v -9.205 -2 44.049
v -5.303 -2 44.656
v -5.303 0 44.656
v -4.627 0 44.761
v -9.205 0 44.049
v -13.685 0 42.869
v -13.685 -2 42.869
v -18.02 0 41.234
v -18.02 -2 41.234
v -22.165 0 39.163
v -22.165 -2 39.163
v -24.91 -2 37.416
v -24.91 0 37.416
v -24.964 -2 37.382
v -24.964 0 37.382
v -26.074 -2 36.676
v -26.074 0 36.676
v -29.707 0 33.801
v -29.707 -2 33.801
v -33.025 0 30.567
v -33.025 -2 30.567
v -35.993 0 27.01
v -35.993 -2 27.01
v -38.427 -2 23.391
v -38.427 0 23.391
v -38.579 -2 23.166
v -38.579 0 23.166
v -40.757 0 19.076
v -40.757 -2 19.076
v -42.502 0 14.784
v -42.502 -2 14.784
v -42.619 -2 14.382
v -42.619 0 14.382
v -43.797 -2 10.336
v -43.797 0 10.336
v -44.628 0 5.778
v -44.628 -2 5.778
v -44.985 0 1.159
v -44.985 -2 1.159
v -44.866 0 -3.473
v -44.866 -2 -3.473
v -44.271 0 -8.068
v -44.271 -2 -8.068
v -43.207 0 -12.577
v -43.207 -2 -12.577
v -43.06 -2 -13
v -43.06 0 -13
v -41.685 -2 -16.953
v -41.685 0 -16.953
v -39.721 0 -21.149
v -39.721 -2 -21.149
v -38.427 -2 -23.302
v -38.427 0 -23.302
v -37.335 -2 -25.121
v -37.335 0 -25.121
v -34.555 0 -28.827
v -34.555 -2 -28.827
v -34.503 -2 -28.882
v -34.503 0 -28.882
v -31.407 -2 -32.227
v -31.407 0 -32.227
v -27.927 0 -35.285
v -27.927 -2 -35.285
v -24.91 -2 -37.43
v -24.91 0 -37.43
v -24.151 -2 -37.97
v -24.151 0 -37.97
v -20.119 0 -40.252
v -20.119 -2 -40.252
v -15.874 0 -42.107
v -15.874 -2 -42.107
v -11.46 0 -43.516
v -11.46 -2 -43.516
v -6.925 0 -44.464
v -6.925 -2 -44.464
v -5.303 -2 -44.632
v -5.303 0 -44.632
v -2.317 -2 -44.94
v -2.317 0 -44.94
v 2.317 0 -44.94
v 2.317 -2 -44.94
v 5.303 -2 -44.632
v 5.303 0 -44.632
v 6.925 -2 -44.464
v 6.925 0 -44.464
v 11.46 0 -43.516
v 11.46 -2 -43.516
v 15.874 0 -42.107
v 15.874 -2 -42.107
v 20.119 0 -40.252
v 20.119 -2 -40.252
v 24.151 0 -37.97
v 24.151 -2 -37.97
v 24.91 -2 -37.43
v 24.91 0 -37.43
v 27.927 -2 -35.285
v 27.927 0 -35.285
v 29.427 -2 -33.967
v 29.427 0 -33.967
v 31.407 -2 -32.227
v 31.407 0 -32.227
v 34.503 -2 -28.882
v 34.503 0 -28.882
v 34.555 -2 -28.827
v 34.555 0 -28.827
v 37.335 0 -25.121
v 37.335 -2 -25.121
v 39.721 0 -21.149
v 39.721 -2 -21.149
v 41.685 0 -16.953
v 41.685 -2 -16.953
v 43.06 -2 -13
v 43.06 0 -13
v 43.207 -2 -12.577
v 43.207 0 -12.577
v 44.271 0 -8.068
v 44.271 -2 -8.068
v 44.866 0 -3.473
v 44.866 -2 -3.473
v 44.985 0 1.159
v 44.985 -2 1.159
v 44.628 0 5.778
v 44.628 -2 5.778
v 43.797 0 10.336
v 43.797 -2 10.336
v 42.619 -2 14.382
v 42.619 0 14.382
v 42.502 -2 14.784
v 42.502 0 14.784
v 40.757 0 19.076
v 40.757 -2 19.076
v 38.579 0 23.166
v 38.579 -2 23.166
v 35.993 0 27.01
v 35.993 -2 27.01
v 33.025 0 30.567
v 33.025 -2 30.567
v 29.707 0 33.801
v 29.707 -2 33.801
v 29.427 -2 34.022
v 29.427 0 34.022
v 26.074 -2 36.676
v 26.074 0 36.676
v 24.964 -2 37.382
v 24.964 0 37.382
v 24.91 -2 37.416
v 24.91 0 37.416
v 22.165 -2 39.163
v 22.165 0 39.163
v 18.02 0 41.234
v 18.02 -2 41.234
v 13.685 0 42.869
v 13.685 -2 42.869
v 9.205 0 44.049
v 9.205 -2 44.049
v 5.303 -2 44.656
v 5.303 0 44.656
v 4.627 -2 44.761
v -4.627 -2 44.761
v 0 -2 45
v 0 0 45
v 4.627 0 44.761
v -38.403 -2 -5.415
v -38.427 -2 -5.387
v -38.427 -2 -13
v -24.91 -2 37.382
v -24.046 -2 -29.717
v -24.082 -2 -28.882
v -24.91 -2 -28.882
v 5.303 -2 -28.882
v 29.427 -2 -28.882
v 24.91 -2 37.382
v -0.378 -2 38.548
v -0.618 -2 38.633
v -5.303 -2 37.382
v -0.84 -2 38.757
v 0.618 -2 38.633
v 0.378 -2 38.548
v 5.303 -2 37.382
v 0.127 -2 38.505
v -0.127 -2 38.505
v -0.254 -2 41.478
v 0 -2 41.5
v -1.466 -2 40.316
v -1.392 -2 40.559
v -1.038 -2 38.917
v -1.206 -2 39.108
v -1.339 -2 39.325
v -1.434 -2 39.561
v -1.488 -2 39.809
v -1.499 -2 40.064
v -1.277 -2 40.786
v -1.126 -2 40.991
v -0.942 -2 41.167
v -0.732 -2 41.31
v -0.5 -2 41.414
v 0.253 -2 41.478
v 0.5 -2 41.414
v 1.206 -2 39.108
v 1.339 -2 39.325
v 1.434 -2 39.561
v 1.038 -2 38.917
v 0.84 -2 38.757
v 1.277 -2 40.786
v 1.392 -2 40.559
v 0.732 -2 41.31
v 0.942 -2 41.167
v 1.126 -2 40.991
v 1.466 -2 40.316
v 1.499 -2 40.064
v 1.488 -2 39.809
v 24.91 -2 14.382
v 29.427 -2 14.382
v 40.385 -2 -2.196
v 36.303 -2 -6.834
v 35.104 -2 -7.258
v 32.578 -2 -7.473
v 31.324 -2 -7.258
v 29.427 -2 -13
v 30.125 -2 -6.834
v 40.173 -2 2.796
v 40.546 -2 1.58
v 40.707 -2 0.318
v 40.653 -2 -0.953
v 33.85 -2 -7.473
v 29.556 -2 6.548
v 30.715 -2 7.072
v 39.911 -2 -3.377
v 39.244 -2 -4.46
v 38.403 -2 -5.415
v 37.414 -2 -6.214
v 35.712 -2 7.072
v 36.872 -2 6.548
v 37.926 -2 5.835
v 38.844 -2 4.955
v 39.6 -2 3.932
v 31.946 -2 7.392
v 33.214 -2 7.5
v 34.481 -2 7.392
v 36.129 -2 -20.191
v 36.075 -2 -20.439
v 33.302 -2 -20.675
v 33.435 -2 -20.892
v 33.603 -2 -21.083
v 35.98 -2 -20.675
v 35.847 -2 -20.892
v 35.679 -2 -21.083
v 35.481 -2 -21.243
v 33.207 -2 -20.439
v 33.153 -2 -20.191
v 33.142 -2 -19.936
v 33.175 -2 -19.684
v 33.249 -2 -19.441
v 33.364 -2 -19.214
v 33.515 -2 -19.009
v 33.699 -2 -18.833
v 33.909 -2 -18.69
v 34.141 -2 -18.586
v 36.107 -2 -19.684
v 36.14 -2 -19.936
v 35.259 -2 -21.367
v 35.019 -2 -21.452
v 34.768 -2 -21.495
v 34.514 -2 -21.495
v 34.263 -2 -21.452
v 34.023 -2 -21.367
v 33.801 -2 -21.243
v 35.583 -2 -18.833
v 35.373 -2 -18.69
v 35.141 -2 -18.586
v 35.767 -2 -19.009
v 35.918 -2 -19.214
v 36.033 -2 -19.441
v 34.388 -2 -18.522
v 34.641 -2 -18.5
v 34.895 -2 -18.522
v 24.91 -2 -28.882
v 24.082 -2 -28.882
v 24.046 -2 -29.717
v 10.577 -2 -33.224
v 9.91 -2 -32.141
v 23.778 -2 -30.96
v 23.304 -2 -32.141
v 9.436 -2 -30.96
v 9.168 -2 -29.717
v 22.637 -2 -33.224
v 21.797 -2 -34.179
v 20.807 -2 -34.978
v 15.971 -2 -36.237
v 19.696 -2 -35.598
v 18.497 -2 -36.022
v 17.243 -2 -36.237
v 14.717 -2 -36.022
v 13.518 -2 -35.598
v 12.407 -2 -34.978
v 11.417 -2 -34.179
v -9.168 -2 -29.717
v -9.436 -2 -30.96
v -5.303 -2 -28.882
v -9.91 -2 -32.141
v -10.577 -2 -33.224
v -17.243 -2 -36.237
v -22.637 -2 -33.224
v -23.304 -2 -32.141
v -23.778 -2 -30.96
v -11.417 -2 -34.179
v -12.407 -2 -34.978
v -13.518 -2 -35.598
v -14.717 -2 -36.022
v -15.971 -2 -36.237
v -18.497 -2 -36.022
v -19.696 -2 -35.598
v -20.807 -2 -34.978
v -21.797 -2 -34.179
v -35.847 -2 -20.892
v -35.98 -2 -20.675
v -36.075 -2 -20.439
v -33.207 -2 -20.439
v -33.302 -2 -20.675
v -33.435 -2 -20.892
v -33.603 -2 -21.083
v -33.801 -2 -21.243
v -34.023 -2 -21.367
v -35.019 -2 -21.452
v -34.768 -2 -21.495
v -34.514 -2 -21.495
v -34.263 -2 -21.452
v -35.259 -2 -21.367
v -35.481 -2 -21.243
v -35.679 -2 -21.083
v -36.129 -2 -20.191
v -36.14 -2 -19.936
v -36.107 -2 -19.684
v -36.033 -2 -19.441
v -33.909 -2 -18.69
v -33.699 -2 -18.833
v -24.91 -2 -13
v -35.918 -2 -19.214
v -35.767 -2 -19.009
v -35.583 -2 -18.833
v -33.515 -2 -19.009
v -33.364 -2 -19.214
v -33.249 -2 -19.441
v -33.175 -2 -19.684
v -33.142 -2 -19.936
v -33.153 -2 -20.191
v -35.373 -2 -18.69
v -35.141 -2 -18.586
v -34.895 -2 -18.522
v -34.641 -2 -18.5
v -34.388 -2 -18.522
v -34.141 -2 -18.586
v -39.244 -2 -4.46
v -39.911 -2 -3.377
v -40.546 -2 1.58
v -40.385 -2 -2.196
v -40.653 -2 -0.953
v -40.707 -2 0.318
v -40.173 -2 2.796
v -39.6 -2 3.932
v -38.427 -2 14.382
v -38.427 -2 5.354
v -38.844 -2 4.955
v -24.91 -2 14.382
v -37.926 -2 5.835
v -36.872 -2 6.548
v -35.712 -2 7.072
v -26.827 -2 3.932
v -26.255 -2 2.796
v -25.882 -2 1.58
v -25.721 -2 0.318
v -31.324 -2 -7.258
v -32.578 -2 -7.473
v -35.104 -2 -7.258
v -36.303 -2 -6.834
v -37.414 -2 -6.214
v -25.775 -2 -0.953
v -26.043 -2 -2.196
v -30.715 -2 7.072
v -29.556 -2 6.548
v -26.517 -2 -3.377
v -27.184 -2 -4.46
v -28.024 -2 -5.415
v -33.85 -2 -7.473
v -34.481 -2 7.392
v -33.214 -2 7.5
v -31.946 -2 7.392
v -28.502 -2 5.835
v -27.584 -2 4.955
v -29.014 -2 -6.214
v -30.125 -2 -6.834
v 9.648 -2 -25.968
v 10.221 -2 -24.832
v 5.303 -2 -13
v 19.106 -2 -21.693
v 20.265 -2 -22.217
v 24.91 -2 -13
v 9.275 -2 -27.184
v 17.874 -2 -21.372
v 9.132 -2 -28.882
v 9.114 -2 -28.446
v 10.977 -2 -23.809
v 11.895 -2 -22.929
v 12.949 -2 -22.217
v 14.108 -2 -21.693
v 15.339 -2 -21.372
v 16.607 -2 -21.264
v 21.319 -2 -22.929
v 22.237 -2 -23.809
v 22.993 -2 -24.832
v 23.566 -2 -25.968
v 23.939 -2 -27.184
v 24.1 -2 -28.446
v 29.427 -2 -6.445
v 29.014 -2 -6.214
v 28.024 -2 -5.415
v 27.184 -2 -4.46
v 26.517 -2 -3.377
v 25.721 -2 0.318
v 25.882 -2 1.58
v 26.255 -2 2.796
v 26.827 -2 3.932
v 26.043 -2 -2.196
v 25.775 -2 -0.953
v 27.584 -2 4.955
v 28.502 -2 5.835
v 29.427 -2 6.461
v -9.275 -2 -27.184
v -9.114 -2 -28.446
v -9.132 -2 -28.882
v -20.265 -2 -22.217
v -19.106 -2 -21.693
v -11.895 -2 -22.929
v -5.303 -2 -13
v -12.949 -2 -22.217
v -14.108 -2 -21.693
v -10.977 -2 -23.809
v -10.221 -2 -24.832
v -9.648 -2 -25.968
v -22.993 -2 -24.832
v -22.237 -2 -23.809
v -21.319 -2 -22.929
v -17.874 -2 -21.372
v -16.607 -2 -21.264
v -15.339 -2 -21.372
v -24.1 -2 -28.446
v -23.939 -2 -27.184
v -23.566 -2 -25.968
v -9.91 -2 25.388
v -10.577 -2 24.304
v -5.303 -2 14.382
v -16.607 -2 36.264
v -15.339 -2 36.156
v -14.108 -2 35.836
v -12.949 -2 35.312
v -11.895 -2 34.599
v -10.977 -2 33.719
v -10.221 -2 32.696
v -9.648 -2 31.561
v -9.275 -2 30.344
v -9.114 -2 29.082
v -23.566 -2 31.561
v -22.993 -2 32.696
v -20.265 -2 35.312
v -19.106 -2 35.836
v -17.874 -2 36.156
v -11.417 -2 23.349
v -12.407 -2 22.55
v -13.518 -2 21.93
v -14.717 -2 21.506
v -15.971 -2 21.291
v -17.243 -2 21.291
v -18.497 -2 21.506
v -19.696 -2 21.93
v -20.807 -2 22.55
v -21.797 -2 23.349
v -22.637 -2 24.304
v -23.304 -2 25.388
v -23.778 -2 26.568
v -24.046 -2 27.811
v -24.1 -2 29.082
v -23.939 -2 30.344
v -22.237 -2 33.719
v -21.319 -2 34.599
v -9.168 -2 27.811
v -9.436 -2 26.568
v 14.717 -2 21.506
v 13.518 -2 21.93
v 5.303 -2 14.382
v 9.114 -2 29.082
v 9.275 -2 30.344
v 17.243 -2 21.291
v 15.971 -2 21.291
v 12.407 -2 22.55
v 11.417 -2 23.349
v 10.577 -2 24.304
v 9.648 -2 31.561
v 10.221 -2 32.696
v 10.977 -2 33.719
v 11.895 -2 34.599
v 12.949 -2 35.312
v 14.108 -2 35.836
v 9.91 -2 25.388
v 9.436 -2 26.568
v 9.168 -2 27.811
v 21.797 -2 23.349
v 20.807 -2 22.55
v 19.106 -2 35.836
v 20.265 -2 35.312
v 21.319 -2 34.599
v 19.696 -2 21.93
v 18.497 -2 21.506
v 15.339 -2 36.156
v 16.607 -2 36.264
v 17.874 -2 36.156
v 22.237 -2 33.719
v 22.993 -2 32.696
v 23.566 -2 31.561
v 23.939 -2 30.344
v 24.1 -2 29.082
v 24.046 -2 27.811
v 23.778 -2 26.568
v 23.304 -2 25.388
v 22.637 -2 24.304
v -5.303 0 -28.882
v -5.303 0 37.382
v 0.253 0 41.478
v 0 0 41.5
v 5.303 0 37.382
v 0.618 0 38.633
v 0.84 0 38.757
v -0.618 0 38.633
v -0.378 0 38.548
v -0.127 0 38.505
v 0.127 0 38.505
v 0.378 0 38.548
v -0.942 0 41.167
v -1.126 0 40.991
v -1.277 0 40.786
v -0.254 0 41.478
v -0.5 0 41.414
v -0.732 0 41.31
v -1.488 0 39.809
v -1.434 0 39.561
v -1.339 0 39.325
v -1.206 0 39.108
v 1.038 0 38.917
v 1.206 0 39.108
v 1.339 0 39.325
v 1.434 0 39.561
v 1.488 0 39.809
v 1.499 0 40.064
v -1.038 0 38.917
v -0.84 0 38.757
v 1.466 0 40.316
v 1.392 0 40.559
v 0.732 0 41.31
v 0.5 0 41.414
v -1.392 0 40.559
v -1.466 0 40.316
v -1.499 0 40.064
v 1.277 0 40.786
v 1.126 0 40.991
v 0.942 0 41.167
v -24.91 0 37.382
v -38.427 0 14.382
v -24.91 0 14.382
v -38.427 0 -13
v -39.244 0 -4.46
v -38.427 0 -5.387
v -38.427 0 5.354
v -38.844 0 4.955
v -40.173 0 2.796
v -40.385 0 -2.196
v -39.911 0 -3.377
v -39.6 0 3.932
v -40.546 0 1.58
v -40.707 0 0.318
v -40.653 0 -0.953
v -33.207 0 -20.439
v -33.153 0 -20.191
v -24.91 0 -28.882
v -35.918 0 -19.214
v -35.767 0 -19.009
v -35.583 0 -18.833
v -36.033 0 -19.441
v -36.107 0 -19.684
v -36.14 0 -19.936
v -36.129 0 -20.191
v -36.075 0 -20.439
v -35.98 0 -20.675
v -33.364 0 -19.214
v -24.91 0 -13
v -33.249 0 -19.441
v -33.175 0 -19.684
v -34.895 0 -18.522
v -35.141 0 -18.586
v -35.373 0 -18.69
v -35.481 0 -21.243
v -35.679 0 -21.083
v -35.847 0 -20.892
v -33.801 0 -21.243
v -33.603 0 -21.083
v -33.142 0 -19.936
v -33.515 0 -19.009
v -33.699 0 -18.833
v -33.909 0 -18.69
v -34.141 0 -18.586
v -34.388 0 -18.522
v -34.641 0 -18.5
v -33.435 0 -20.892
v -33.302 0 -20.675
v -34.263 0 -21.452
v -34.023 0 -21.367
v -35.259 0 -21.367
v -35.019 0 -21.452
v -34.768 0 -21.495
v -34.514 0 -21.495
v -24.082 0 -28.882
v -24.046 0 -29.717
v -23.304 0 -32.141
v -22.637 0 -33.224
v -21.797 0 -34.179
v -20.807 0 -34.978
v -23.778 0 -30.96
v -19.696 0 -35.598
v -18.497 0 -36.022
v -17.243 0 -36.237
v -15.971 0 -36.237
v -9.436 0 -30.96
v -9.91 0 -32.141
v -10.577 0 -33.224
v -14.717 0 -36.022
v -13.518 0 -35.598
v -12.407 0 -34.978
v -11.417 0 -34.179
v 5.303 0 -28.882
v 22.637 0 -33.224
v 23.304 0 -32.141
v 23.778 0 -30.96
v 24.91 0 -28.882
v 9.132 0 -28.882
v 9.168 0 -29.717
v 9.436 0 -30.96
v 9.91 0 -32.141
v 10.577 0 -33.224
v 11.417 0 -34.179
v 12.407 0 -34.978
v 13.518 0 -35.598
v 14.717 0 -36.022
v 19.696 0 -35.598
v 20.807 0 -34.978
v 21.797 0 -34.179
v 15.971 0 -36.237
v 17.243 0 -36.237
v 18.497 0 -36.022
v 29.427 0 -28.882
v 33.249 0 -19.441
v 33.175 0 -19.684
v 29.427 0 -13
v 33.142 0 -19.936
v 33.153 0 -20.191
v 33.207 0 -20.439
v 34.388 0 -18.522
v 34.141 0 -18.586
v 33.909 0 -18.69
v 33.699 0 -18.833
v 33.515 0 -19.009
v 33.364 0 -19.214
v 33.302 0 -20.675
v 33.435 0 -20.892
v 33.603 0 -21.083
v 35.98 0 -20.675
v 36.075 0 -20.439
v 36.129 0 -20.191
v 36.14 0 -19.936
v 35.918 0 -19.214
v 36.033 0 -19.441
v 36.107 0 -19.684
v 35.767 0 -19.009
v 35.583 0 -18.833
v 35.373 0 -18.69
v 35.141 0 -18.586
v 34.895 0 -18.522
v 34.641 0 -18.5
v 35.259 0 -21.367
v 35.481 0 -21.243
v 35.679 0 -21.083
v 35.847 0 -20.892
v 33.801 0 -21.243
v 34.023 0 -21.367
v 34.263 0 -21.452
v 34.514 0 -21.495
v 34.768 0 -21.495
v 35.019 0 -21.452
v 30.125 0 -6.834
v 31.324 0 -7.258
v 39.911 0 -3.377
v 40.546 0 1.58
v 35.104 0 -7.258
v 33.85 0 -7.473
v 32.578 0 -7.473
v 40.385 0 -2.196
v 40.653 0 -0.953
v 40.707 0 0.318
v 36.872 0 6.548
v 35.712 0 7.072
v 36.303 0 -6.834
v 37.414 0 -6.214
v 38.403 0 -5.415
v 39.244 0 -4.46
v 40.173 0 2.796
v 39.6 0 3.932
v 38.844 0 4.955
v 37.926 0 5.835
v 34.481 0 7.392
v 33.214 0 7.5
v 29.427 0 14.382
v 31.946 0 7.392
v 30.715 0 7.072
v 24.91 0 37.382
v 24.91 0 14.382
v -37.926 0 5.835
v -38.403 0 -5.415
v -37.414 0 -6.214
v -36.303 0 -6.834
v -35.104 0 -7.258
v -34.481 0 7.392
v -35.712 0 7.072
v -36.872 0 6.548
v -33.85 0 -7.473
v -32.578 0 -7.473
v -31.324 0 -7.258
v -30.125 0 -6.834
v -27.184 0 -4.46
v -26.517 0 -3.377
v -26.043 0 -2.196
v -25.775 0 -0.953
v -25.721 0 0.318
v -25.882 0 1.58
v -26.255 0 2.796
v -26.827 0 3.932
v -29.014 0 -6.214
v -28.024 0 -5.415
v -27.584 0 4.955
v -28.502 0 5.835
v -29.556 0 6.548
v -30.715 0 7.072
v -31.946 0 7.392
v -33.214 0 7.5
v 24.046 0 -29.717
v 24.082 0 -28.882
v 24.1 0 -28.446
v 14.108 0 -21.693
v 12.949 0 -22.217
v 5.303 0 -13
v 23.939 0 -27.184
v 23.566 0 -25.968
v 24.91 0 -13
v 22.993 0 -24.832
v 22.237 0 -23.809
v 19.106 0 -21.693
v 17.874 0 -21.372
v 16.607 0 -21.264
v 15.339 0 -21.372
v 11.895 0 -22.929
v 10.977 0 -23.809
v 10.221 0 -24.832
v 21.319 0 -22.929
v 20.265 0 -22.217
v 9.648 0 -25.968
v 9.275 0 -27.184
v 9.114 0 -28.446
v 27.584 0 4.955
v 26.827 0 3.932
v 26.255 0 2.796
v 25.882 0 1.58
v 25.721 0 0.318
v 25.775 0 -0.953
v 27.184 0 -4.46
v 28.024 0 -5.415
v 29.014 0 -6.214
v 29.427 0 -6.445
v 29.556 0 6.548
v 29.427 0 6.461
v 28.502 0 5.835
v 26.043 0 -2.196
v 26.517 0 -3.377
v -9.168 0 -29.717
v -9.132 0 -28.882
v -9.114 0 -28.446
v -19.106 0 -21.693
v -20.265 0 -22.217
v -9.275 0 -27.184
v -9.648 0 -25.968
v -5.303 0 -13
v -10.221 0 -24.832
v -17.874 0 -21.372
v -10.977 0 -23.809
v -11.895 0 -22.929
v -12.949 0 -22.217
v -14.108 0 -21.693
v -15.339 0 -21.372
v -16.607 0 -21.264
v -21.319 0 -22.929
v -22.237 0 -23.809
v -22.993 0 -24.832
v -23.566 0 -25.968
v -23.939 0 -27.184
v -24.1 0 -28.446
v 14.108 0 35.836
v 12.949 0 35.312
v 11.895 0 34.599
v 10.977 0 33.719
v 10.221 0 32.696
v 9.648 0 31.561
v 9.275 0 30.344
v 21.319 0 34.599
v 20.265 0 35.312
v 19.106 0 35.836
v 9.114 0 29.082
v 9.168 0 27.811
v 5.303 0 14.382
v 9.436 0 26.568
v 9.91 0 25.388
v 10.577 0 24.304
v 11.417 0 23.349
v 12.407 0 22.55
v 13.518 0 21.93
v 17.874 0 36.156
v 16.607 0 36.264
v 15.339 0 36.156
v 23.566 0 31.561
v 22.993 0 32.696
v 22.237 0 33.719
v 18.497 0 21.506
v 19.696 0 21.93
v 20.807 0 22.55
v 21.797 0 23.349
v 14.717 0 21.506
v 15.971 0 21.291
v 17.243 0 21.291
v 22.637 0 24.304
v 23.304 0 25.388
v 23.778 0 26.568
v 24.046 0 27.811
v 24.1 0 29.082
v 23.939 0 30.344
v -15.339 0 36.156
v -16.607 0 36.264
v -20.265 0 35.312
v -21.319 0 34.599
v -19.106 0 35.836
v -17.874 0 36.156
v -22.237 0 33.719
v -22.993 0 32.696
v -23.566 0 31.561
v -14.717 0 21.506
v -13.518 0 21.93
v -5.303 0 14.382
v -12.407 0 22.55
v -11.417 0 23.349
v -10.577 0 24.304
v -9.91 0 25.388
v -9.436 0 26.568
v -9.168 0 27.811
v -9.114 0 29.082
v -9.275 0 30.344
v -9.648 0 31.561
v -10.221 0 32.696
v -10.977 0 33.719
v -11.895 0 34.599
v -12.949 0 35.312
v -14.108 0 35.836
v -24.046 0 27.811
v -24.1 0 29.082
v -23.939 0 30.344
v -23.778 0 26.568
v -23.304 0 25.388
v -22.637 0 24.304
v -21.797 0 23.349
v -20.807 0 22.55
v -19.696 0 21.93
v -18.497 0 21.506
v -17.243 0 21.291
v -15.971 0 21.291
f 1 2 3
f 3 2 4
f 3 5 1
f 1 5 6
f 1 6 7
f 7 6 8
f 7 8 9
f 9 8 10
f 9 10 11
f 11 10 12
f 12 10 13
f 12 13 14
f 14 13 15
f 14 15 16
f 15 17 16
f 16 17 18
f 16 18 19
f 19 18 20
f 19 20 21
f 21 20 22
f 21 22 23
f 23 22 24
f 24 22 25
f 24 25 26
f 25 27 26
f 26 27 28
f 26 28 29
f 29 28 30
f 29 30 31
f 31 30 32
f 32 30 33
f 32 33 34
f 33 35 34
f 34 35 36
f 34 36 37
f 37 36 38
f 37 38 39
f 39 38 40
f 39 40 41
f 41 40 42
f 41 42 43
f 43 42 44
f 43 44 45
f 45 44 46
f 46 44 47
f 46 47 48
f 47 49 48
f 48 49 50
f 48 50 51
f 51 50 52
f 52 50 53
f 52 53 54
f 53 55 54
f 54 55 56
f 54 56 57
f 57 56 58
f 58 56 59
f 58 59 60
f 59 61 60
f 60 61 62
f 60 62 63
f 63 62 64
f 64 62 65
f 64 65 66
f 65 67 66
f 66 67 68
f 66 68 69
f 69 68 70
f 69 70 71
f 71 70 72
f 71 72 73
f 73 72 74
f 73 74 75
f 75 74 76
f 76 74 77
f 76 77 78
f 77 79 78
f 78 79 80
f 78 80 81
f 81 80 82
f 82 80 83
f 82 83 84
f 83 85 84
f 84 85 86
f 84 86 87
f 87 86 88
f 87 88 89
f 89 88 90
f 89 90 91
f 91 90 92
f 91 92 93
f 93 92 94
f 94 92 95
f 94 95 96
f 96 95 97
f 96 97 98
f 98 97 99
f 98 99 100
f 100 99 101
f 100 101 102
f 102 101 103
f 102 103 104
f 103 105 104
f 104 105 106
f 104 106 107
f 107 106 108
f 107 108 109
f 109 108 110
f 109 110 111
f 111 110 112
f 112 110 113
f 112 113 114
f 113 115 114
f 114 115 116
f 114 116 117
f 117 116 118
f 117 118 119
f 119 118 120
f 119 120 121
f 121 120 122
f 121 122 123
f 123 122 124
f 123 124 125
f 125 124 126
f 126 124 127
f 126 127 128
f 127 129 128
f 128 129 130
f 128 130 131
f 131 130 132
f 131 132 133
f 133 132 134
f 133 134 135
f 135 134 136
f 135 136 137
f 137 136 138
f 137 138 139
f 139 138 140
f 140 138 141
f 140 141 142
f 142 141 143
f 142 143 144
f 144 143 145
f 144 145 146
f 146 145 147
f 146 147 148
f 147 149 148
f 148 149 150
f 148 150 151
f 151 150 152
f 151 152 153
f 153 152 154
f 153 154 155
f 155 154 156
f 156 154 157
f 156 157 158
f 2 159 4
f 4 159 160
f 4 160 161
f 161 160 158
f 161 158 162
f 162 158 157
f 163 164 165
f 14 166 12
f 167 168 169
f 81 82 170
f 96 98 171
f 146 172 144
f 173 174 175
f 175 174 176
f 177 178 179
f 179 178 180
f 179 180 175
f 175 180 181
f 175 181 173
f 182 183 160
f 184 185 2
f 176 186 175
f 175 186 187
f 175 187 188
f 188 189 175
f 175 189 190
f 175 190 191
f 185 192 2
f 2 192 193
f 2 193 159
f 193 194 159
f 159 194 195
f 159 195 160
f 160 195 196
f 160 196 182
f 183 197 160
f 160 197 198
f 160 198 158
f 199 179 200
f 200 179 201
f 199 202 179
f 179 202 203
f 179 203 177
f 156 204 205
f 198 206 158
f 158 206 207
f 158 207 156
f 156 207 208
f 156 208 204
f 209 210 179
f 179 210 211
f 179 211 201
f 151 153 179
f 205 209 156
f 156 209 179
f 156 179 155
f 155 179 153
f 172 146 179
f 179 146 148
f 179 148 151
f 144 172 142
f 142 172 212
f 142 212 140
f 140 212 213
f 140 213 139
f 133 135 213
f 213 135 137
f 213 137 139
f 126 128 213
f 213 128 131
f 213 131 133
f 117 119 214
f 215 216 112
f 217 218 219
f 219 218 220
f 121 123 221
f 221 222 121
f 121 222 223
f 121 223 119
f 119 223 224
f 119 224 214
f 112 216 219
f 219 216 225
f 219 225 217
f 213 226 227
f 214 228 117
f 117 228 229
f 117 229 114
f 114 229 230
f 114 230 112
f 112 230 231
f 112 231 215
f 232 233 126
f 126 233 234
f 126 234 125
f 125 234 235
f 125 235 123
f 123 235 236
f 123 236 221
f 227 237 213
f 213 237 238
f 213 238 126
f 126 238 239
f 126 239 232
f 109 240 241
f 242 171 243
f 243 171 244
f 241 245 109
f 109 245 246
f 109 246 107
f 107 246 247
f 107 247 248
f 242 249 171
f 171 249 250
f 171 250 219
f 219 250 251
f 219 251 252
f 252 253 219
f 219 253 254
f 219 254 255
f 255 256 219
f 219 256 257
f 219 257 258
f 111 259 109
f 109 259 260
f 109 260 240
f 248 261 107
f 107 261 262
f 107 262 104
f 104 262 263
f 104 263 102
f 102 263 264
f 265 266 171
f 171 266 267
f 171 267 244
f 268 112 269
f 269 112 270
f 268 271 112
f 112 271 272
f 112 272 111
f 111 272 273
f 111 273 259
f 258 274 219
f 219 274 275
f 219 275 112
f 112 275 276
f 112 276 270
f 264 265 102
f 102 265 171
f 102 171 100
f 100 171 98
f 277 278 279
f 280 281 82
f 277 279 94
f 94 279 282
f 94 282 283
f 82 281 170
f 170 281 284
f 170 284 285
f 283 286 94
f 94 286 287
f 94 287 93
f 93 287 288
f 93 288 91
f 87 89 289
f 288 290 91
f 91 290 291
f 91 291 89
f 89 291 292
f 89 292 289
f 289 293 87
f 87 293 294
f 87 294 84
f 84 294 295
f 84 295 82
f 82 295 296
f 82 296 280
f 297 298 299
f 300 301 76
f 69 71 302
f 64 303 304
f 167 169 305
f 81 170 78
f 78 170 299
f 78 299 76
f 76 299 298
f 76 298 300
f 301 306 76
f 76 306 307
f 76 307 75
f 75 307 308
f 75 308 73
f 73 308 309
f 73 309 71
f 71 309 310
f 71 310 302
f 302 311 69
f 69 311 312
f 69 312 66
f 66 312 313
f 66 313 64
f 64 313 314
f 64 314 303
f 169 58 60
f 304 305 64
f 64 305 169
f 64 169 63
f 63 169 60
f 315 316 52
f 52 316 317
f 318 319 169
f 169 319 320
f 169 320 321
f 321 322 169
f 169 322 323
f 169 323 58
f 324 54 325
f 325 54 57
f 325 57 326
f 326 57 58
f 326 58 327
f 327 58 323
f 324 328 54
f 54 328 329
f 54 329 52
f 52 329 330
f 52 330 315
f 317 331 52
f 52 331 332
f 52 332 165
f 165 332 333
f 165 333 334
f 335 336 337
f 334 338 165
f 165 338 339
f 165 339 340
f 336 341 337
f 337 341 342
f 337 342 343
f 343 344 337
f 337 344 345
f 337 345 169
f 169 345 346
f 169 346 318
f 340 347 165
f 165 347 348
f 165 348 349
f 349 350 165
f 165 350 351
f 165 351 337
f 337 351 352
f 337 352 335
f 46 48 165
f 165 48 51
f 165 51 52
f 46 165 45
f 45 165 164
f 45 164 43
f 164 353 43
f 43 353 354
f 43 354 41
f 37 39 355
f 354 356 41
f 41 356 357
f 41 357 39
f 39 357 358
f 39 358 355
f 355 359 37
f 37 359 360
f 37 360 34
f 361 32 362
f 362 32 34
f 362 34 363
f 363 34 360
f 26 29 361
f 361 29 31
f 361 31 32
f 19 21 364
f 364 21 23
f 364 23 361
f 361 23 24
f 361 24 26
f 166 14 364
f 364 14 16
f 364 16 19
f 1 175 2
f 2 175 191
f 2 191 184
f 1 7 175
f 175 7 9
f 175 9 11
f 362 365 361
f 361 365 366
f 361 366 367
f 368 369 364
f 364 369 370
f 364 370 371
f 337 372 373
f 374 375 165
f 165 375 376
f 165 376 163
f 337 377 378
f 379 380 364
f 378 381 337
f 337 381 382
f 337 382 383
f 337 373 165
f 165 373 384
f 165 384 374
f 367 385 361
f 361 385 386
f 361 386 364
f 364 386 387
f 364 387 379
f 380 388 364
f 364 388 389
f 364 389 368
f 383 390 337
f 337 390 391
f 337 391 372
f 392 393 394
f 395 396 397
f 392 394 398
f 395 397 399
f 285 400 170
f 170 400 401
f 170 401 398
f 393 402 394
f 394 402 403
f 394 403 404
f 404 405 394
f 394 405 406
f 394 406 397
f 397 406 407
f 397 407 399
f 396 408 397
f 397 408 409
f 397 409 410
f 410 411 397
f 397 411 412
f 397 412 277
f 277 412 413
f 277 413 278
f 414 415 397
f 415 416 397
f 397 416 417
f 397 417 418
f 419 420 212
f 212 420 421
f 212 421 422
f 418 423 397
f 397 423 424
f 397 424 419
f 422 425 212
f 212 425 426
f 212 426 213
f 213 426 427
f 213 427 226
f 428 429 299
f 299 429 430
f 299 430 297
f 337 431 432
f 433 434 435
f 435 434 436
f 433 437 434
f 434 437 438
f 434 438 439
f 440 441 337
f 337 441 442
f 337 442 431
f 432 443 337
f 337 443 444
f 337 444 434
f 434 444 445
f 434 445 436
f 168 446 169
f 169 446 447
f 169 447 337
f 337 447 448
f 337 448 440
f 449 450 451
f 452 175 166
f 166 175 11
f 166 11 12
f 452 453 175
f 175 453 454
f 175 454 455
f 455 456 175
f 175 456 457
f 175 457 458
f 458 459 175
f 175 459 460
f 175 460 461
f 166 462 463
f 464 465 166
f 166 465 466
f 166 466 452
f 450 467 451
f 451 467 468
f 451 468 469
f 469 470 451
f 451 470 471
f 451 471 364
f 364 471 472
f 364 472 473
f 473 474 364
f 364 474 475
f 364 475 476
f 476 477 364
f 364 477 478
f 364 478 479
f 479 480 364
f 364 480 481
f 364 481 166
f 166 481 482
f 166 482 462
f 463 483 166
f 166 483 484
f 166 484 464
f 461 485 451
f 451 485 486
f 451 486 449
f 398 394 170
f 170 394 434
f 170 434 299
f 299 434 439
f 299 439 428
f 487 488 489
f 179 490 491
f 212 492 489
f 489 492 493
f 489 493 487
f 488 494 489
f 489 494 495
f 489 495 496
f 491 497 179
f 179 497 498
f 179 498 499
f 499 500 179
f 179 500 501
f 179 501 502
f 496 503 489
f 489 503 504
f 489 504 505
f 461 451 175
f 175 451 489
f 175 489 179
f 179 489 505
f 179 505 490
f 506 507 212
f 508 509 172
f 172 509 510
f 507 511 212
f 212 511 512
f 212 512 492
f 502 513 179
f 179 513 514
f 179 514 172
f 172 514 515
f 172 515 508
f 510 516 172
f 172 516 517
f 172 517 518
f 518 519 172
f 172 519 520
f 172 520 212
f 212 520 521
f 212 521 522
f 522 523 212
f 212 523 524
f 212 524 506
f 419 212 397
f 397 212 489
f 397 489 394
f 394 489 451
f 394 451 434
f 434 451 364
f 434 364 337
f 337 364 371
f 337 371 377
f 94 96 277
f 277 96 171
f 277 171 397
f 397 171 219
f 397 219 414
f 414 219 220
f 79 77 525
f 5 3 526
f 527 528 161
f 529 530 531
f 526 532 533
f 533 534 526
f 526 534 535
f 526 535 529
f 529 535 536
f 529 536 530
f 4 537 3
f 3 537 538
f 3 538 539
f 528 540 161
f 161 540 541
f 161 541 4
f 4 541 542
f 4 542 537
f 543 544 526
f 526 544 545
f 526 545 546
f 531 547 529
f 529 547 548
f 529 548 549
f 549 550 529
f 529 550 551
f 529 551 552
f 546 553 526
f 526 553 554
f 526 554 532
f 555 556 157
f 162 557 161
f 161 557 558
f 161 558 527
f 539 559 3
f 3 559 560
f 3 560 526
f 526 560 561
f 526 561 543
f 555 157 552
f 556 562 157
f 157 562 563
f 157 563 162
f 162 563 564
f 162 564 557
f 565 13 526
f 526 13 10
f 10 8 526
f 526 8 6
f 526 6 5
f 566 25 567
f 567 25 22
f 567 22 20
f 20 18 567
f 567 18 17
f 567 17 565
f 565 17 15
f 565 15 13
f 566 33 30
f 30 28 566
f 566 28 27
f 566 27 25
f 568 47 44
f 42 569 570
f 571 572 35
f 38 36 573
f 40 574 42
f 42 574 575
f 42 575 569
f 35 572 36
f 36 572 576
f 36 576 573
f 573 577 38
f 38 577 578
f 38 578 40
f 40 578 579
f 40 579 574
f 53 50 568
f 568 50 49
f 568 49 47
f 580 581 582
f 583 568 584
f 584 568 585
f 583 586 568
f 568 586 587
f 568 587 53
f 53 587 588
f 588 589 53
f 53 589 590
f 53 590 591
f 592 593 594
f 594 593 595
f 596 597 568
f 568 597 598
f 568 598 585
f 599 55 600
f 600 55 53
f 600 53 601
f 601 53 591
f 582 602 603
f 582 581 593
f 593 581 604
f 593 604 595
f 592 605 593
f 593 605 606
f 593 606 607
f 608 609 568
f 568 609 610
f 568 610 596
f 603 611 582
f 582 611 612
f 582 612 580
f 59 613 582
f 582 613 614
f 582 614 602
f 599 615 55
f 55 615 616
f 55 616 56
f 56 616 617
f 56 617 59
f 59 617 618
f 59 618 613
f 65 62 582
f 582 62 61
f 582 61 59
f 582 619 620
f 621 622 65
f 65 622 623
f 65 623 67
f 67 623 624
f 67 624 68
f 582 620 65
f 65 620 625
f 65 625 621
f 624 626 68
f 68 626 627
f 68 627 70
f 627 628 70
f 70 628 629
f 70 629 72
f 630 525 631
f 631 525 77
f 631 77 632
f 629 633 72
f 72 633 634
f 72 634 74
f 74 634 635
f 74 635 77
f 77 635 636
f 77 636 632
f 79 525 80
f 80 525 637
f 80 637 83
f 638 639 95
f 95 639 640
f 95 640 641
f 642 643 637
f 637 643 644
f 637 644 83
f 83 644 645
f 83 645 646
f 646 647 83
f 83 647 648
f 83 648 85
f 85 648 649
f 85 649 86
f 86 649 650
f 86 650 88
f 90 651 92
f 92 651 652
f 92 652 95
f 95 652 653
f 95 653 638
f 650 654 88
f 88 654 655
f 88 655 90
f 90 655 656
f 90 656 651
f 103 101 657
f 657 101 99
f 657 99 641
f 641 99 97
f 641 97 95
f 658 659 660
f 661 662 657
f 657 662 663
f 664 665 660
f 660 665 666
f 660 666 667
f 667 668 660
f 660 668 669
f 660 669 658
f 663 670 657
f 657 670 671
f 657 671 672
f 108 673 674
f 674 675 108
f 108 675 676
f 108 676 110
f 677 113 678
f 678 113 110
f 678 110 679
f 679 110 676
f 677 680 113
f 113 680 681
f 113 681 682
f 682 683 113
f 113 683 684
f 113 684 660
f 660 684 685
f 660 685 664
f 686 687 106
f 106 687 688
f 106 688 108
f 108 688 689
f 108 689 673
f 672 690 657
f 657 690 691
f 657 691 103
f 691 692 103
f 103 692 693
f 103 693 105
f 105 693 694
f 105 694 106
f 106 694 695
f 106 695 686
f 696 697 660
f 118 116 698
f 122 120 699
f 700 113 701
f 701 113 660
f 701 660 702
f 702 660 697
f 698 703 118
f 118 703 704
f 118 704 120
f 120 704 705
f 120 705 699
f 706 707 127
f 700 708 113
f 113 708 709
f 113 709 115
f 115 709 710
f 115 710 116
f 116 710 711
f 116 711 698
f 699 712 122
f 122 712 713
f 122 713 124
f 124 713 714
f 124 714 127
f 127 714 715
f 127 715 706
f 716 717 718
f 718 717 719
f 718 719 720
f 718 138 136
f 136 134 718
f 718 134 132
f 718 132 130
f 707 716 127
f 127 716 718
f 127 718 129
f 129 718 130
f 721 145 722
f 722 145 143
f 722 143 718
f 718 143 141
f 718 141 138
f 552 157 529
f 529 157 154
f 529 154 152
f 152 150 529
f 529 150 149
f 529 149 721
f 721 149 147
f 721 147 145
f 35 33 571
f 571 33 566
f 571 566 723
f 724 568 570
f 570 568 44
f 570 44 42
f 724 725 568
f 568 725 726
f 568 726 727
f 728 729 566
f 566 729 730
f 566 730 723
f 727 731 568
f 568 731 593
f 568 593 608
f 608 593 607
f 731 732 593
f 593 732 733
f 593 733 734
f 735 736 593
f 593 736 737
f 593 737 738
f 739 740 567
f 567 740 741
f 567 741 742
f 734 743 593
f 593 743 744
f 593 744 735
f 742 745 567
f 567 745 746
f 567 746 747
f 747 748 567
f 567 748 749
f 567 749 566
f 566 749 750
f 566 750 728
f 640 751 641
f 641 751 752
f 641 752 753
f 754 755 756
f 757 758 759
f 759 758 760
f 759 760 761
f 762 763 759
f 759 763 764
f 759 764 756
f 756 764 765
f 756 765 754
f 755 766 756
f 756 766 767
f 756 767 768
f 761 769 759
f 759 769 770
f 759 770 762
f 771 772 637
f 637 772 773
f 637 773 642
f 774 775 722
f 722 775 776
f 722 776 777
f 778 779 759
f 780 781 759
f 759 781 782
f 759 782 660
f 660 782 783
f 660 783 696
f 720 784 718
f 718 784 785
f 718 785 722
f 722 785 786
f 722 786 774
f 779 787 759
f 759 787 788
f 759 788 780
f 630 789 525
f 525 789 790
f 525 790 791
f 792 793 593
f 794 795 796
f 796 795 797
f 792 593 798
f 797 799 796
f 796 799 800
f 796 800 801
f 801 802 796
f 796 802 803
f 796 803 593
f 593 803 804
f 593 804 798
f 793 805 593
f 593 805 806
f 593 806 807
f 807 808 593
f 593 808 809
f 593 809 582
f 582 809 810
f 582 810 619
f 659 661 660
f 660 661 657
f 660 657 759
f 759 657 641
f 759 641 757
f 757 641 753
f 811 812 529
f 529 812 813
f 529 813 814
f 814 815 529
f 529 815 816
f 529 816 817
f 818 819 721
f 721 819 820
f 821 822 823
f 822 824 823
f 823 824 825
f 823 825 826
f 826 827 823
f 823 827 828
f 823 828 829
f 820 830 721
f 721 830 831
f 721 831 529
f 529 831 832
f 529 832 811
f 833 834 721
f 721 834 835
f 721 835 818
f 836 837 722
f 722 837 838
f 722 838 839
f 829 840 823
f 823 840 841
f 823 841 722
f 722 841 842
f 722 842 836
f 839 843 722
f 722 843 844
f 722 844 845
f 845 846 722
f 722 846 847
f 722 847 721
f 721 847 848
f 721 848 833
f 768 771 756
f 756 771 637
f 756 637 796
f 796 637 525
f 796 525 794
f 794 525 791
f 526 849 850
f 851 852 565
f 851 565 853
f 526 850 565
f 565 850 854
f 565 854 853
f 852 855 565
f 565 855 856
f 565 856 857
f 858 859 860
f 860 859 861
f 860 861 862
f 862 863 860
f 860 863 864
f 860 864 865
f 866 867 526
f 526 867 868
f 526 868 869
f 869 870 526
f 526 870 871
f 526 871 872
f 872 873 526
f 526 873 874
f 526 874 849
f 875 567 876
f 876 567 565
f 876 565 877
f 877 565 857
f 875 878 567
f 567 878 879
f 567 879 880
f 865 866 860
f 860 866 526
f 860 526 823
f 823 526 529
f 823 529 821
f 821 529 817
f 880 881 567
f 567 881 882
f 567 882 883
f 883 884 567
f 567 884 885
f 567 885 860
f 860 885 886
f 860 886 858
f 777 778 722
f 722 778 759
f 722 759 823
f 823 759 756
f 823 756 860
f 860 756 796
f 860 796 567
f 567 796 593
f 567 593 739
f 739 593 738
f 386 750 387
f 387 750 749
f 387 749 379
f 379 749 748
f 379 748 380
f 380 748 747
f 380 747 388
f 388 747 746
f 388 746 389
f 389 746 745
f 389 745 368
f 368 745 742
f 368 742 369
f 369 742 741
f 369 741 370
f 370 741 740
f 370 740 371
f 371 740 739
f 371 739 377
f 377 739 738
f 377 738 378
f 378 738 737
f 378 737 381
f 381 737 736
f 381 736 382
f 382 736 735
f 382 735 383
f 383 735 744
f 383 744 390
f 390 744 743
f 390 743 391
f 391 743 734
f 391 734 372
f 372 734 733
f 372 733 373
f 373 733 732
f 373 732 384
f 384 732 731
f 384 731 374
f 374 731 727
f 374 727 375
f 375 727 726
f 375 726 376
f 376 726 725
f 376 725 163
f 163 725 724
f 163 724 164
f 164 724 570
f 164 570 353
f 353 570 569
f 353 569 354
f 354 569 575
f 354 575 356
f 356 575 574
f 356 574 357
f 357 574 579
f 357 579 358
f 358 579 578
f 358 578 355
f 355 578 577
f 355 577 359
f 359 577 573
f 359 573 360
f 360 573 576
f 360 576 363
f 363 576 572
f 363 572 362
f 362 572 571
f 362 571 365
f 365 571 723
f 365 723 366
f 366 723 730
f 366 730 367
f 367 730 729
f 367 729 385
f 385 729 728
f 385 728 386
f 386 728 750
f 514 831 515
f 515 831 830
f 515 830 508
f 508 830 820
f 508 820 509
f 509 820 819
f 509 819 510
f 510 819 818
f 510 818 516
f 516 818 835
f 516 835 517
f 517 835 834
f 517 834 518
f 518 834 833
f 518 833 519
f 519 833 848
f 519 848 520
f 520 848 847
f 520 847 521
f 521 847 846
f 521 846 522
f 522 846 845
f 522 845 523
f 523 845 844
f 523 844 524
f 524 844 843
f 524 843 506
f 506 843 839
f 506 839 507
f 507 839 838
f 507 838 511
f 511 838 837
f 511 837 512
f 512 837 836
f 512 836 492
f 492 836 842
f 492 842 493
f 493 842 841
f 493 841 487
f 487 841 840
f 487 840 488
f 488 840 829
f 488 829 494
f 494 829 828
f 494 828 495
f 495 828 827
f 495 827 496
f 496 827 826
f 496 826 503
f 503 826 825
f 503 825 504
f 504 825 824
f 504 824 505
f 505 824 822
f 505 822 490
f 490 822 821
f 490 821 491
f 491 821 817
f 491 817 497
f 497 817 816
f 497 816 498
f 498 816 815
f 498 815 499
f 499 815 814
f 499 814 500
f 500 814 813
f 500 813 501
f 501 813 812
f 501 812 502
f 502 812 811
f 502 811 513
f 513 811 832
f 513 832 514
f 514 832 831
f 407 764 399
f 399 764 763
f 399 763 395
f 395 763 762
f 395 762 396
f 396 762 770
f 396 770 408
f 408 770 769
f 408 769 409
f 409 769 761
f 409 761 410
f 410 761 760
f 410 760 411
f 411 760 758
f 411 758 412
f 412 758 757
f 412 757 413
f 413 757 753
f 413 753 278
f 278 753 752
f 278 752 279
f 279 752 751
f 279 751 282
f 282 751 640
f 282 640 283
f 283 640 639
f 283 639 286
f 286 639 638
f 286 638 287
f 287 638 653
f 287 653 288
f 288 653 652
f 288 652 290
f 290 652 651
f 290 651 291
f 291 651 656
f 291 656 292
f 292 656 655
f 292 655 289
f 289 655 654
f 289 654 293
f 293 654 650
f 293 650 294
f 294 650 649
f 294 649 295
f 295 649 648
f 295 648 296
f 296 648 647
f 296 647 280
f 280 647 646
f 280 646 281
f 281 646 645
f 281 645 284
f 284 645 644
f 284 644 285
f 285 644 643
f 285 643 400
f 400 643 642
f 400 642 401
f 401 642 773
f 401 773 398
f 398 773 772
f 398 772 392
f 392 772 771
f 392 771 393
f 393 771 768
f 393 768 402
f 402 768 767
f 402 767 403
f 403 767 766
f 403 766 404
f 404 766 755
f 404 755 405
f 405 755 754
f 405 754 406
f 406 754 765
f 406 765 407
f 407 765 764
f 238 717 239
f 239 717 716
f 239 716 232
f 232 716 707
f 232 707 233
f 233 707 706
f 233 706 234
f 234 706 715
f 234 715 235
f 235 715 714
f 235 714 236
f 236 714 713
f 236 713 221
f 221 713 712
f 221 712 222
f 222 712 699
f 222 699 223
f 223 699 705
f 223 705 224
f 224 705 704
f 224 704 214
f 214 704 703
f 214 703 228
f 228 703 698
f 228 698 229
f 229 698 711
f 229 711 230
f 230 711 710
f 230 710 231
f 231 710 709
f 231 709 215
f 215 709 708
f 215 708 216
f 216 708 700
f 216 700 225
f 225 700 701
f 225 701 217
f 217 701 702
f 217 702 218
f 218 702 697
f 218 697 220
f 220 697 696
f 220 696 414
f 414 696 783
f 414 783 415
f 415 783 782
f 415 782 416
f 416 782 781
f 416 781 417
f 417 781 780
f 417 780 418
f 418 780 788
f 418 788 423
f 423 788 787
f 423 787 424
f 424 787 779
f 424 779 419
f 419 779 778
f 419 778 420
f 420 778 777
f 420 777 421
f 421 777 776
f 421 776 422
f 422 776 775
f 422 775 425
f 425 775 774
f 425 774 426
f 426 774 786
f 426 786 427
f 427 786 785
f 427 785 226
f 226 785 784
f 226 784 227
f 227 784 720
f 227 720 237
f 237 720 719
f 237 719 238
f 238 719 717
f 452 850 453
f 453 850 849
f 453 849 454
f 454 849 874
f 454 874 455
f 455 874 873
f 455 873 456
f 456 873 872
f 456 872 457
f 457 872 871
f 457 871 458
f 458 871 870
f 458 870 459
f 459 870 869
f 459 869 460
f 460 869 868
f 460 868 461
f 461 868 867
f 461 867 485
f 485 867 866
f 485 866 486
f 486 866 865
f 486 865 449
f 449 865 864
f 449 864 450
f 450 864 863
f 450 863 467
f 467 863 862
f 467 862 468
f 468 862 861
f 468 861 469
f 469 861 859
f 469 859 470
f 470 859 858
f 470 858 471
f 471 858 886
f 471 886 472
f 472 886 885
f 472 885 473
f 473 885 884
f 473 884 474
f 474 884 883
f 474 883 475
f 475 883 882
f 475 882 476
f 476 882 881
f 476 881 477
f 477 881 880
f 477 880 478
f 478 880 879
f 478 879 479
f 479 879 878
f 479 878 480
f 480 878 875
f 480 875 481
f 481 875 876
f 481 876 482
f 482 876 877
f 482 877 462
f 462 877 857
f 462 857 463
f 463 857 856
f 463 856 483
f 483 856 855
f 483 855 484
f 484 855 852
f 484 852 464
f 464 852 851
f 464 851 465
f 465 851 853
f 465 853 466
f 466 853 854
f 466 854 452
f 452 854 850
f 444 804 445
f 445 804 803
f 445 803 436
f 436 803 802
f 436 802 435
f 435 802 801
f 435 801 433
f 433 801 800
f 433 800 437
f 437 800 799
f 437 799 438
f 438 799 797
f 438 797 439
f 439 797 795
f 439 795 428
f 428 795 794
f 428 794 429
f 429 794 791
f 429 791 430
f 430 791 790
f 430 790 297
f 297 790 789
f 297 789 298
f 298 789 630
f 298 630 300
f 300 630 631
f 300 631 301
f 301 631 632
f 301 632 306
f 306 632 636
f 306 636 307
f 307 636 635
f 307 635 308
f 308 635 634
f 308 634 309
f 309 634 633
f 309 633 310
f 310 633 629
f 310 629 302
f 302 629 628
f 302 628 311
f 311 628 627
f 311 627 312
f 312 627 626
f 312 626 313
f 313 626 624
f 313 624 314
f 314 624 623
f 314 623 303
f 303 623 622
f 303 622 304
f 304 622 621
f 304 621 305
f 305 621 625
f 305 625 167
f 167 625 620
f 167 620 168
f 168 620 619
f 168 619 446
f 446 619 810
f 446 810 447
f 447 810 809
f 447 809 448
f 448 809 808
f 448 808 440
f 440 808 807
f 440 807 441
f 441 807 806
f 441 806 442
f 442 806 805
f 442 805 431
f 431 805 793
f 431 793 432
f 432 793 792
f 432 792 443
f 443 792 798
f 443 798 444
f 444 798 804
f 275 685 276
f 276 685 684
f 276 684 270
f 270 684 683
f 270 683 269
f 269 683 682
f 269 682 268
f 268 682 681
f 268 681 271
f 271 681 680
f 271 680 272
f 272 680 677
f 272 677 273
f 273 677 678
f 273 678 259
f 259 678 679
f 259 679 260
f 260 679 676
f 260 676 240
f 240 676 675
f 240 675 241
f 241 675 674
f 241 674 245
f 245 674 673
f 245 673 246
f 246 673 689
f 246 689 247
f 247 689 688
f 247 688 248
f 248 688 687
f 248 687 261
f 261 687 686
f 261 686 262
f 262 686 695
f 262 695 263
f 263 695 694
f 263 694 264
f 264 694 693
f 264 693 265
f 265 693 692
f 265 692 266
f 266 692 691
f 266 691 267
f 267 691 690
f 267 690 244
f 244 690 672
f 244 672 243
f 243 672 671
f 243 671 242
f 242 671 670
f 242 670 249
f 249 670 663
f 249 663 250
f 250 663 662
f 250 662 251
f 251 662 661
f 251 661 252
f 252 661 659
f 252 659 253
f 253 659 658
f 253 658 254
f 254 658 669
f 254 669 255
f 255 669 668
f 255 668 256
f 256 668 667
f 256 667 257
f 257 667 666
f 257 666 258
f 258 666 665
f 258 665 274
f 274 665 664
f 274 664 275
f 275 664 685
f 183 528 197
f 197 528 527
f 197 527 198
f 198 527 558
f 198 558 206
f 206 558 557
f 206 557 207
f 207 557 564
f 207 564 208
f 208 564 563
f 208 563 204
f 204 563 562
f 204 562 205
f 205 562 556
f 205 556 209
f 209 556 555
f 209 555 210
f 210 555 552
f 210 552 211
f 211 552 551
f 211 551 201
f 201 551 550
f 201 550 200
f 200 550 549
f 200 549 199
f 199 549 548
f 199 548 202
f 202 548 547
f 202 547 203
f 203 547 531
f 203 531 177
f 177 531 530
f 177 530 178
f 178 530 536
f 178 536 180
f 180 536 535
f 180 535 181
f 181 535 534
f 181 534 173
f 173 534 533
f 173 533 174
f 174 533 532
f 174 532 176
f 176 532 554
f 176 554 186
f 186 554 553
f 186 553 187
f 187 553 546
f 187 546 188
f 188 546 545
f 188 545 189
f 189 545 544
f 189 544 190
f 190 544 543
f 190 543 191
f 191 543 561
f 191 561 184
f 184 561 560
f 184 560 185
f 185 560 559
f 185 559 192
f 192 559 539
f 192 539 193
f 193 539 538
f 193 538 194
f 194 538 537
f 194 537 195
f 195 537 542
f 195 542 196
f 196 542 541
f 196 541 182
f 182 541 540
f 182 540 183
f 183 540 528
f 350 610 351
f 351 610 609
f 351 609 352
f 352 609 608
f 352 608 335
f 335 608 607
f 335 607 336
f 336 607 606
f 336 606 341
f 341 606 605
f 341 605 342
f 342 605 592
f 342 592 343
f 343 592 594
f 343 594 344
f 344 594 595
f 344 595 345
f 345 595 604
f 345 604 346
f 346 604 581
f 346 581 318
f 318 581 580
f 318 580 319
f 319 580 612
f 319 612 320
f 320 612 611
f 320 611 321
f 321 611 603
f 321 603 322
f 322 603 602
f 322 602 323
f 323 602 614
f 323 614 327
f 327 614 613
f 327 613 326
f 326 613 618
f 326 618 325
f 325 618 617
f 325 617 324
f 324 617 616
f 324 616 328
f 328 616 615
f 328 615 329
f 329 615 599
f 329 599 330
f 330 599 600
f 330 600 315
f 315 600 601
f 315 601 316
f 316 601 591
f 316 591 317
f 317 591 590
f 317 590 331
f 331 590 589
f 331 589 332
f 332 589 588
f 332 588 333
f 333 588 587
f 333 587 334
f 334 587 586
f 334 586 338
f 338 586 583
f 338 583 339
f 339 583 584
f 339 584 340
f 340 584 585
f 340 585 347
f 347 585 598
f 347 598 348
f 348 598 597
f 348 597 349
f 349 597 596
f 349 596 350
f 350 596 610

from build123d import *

# Parameters (mm, degrees)
SKETCH1_R                = 45
BOSS_EXTRUDE1_DEPTH      = 2
F_8_0MM_DOWEL_HOLE1_D    = 15
F_3_0_3_DIAMETER_HOLE1_D = 3


with BuildPart() as part:
    # Sketch1 → Boss-Extrude1 (new body)
    with BuildSketch(Plane(origin=(0, 0, 0), x_dir=(1, 0, 0), z_dir=(0, 1, 0))):
        with Locations(Location((0, 0, 0), (0, 0, 270))):
            Circle(SKETCH1_R)
    extrude(amount=-BOSS_EXTRUDE1_DEPTH)

    # Ø8.0mm Dowel Hole1 (through all)
    with Locations(Plane(origin=(0, 0, 0), x_dir=(1, 0, 0), z_dir=(0, 1, 0))):
        with Locations((-16.606971943, 28.764119165), (-16.606971943, -28.764119165), (33.213943886, 0), (16.606971943, 28.764119165), (16.606971943, -28.764119165), (-33.213943886, 0)):
            Hole(F_8_0MM_DOWEL_HOLE1_D / 2)

    # Ø3.0 (3) Diameter Hole1 (through all)
    with Locations(Plane(origin=(0, 0, 0), x_dir=(1, 0, 0), z_dir=(0, 1, 0))):
        with Locations((-34.641016151, 20), (0, -40), (34.641016151, 20)):
            Hole(F_3_0_3_DIAMETER_HOLE1_D / 2)


solid = part.part
